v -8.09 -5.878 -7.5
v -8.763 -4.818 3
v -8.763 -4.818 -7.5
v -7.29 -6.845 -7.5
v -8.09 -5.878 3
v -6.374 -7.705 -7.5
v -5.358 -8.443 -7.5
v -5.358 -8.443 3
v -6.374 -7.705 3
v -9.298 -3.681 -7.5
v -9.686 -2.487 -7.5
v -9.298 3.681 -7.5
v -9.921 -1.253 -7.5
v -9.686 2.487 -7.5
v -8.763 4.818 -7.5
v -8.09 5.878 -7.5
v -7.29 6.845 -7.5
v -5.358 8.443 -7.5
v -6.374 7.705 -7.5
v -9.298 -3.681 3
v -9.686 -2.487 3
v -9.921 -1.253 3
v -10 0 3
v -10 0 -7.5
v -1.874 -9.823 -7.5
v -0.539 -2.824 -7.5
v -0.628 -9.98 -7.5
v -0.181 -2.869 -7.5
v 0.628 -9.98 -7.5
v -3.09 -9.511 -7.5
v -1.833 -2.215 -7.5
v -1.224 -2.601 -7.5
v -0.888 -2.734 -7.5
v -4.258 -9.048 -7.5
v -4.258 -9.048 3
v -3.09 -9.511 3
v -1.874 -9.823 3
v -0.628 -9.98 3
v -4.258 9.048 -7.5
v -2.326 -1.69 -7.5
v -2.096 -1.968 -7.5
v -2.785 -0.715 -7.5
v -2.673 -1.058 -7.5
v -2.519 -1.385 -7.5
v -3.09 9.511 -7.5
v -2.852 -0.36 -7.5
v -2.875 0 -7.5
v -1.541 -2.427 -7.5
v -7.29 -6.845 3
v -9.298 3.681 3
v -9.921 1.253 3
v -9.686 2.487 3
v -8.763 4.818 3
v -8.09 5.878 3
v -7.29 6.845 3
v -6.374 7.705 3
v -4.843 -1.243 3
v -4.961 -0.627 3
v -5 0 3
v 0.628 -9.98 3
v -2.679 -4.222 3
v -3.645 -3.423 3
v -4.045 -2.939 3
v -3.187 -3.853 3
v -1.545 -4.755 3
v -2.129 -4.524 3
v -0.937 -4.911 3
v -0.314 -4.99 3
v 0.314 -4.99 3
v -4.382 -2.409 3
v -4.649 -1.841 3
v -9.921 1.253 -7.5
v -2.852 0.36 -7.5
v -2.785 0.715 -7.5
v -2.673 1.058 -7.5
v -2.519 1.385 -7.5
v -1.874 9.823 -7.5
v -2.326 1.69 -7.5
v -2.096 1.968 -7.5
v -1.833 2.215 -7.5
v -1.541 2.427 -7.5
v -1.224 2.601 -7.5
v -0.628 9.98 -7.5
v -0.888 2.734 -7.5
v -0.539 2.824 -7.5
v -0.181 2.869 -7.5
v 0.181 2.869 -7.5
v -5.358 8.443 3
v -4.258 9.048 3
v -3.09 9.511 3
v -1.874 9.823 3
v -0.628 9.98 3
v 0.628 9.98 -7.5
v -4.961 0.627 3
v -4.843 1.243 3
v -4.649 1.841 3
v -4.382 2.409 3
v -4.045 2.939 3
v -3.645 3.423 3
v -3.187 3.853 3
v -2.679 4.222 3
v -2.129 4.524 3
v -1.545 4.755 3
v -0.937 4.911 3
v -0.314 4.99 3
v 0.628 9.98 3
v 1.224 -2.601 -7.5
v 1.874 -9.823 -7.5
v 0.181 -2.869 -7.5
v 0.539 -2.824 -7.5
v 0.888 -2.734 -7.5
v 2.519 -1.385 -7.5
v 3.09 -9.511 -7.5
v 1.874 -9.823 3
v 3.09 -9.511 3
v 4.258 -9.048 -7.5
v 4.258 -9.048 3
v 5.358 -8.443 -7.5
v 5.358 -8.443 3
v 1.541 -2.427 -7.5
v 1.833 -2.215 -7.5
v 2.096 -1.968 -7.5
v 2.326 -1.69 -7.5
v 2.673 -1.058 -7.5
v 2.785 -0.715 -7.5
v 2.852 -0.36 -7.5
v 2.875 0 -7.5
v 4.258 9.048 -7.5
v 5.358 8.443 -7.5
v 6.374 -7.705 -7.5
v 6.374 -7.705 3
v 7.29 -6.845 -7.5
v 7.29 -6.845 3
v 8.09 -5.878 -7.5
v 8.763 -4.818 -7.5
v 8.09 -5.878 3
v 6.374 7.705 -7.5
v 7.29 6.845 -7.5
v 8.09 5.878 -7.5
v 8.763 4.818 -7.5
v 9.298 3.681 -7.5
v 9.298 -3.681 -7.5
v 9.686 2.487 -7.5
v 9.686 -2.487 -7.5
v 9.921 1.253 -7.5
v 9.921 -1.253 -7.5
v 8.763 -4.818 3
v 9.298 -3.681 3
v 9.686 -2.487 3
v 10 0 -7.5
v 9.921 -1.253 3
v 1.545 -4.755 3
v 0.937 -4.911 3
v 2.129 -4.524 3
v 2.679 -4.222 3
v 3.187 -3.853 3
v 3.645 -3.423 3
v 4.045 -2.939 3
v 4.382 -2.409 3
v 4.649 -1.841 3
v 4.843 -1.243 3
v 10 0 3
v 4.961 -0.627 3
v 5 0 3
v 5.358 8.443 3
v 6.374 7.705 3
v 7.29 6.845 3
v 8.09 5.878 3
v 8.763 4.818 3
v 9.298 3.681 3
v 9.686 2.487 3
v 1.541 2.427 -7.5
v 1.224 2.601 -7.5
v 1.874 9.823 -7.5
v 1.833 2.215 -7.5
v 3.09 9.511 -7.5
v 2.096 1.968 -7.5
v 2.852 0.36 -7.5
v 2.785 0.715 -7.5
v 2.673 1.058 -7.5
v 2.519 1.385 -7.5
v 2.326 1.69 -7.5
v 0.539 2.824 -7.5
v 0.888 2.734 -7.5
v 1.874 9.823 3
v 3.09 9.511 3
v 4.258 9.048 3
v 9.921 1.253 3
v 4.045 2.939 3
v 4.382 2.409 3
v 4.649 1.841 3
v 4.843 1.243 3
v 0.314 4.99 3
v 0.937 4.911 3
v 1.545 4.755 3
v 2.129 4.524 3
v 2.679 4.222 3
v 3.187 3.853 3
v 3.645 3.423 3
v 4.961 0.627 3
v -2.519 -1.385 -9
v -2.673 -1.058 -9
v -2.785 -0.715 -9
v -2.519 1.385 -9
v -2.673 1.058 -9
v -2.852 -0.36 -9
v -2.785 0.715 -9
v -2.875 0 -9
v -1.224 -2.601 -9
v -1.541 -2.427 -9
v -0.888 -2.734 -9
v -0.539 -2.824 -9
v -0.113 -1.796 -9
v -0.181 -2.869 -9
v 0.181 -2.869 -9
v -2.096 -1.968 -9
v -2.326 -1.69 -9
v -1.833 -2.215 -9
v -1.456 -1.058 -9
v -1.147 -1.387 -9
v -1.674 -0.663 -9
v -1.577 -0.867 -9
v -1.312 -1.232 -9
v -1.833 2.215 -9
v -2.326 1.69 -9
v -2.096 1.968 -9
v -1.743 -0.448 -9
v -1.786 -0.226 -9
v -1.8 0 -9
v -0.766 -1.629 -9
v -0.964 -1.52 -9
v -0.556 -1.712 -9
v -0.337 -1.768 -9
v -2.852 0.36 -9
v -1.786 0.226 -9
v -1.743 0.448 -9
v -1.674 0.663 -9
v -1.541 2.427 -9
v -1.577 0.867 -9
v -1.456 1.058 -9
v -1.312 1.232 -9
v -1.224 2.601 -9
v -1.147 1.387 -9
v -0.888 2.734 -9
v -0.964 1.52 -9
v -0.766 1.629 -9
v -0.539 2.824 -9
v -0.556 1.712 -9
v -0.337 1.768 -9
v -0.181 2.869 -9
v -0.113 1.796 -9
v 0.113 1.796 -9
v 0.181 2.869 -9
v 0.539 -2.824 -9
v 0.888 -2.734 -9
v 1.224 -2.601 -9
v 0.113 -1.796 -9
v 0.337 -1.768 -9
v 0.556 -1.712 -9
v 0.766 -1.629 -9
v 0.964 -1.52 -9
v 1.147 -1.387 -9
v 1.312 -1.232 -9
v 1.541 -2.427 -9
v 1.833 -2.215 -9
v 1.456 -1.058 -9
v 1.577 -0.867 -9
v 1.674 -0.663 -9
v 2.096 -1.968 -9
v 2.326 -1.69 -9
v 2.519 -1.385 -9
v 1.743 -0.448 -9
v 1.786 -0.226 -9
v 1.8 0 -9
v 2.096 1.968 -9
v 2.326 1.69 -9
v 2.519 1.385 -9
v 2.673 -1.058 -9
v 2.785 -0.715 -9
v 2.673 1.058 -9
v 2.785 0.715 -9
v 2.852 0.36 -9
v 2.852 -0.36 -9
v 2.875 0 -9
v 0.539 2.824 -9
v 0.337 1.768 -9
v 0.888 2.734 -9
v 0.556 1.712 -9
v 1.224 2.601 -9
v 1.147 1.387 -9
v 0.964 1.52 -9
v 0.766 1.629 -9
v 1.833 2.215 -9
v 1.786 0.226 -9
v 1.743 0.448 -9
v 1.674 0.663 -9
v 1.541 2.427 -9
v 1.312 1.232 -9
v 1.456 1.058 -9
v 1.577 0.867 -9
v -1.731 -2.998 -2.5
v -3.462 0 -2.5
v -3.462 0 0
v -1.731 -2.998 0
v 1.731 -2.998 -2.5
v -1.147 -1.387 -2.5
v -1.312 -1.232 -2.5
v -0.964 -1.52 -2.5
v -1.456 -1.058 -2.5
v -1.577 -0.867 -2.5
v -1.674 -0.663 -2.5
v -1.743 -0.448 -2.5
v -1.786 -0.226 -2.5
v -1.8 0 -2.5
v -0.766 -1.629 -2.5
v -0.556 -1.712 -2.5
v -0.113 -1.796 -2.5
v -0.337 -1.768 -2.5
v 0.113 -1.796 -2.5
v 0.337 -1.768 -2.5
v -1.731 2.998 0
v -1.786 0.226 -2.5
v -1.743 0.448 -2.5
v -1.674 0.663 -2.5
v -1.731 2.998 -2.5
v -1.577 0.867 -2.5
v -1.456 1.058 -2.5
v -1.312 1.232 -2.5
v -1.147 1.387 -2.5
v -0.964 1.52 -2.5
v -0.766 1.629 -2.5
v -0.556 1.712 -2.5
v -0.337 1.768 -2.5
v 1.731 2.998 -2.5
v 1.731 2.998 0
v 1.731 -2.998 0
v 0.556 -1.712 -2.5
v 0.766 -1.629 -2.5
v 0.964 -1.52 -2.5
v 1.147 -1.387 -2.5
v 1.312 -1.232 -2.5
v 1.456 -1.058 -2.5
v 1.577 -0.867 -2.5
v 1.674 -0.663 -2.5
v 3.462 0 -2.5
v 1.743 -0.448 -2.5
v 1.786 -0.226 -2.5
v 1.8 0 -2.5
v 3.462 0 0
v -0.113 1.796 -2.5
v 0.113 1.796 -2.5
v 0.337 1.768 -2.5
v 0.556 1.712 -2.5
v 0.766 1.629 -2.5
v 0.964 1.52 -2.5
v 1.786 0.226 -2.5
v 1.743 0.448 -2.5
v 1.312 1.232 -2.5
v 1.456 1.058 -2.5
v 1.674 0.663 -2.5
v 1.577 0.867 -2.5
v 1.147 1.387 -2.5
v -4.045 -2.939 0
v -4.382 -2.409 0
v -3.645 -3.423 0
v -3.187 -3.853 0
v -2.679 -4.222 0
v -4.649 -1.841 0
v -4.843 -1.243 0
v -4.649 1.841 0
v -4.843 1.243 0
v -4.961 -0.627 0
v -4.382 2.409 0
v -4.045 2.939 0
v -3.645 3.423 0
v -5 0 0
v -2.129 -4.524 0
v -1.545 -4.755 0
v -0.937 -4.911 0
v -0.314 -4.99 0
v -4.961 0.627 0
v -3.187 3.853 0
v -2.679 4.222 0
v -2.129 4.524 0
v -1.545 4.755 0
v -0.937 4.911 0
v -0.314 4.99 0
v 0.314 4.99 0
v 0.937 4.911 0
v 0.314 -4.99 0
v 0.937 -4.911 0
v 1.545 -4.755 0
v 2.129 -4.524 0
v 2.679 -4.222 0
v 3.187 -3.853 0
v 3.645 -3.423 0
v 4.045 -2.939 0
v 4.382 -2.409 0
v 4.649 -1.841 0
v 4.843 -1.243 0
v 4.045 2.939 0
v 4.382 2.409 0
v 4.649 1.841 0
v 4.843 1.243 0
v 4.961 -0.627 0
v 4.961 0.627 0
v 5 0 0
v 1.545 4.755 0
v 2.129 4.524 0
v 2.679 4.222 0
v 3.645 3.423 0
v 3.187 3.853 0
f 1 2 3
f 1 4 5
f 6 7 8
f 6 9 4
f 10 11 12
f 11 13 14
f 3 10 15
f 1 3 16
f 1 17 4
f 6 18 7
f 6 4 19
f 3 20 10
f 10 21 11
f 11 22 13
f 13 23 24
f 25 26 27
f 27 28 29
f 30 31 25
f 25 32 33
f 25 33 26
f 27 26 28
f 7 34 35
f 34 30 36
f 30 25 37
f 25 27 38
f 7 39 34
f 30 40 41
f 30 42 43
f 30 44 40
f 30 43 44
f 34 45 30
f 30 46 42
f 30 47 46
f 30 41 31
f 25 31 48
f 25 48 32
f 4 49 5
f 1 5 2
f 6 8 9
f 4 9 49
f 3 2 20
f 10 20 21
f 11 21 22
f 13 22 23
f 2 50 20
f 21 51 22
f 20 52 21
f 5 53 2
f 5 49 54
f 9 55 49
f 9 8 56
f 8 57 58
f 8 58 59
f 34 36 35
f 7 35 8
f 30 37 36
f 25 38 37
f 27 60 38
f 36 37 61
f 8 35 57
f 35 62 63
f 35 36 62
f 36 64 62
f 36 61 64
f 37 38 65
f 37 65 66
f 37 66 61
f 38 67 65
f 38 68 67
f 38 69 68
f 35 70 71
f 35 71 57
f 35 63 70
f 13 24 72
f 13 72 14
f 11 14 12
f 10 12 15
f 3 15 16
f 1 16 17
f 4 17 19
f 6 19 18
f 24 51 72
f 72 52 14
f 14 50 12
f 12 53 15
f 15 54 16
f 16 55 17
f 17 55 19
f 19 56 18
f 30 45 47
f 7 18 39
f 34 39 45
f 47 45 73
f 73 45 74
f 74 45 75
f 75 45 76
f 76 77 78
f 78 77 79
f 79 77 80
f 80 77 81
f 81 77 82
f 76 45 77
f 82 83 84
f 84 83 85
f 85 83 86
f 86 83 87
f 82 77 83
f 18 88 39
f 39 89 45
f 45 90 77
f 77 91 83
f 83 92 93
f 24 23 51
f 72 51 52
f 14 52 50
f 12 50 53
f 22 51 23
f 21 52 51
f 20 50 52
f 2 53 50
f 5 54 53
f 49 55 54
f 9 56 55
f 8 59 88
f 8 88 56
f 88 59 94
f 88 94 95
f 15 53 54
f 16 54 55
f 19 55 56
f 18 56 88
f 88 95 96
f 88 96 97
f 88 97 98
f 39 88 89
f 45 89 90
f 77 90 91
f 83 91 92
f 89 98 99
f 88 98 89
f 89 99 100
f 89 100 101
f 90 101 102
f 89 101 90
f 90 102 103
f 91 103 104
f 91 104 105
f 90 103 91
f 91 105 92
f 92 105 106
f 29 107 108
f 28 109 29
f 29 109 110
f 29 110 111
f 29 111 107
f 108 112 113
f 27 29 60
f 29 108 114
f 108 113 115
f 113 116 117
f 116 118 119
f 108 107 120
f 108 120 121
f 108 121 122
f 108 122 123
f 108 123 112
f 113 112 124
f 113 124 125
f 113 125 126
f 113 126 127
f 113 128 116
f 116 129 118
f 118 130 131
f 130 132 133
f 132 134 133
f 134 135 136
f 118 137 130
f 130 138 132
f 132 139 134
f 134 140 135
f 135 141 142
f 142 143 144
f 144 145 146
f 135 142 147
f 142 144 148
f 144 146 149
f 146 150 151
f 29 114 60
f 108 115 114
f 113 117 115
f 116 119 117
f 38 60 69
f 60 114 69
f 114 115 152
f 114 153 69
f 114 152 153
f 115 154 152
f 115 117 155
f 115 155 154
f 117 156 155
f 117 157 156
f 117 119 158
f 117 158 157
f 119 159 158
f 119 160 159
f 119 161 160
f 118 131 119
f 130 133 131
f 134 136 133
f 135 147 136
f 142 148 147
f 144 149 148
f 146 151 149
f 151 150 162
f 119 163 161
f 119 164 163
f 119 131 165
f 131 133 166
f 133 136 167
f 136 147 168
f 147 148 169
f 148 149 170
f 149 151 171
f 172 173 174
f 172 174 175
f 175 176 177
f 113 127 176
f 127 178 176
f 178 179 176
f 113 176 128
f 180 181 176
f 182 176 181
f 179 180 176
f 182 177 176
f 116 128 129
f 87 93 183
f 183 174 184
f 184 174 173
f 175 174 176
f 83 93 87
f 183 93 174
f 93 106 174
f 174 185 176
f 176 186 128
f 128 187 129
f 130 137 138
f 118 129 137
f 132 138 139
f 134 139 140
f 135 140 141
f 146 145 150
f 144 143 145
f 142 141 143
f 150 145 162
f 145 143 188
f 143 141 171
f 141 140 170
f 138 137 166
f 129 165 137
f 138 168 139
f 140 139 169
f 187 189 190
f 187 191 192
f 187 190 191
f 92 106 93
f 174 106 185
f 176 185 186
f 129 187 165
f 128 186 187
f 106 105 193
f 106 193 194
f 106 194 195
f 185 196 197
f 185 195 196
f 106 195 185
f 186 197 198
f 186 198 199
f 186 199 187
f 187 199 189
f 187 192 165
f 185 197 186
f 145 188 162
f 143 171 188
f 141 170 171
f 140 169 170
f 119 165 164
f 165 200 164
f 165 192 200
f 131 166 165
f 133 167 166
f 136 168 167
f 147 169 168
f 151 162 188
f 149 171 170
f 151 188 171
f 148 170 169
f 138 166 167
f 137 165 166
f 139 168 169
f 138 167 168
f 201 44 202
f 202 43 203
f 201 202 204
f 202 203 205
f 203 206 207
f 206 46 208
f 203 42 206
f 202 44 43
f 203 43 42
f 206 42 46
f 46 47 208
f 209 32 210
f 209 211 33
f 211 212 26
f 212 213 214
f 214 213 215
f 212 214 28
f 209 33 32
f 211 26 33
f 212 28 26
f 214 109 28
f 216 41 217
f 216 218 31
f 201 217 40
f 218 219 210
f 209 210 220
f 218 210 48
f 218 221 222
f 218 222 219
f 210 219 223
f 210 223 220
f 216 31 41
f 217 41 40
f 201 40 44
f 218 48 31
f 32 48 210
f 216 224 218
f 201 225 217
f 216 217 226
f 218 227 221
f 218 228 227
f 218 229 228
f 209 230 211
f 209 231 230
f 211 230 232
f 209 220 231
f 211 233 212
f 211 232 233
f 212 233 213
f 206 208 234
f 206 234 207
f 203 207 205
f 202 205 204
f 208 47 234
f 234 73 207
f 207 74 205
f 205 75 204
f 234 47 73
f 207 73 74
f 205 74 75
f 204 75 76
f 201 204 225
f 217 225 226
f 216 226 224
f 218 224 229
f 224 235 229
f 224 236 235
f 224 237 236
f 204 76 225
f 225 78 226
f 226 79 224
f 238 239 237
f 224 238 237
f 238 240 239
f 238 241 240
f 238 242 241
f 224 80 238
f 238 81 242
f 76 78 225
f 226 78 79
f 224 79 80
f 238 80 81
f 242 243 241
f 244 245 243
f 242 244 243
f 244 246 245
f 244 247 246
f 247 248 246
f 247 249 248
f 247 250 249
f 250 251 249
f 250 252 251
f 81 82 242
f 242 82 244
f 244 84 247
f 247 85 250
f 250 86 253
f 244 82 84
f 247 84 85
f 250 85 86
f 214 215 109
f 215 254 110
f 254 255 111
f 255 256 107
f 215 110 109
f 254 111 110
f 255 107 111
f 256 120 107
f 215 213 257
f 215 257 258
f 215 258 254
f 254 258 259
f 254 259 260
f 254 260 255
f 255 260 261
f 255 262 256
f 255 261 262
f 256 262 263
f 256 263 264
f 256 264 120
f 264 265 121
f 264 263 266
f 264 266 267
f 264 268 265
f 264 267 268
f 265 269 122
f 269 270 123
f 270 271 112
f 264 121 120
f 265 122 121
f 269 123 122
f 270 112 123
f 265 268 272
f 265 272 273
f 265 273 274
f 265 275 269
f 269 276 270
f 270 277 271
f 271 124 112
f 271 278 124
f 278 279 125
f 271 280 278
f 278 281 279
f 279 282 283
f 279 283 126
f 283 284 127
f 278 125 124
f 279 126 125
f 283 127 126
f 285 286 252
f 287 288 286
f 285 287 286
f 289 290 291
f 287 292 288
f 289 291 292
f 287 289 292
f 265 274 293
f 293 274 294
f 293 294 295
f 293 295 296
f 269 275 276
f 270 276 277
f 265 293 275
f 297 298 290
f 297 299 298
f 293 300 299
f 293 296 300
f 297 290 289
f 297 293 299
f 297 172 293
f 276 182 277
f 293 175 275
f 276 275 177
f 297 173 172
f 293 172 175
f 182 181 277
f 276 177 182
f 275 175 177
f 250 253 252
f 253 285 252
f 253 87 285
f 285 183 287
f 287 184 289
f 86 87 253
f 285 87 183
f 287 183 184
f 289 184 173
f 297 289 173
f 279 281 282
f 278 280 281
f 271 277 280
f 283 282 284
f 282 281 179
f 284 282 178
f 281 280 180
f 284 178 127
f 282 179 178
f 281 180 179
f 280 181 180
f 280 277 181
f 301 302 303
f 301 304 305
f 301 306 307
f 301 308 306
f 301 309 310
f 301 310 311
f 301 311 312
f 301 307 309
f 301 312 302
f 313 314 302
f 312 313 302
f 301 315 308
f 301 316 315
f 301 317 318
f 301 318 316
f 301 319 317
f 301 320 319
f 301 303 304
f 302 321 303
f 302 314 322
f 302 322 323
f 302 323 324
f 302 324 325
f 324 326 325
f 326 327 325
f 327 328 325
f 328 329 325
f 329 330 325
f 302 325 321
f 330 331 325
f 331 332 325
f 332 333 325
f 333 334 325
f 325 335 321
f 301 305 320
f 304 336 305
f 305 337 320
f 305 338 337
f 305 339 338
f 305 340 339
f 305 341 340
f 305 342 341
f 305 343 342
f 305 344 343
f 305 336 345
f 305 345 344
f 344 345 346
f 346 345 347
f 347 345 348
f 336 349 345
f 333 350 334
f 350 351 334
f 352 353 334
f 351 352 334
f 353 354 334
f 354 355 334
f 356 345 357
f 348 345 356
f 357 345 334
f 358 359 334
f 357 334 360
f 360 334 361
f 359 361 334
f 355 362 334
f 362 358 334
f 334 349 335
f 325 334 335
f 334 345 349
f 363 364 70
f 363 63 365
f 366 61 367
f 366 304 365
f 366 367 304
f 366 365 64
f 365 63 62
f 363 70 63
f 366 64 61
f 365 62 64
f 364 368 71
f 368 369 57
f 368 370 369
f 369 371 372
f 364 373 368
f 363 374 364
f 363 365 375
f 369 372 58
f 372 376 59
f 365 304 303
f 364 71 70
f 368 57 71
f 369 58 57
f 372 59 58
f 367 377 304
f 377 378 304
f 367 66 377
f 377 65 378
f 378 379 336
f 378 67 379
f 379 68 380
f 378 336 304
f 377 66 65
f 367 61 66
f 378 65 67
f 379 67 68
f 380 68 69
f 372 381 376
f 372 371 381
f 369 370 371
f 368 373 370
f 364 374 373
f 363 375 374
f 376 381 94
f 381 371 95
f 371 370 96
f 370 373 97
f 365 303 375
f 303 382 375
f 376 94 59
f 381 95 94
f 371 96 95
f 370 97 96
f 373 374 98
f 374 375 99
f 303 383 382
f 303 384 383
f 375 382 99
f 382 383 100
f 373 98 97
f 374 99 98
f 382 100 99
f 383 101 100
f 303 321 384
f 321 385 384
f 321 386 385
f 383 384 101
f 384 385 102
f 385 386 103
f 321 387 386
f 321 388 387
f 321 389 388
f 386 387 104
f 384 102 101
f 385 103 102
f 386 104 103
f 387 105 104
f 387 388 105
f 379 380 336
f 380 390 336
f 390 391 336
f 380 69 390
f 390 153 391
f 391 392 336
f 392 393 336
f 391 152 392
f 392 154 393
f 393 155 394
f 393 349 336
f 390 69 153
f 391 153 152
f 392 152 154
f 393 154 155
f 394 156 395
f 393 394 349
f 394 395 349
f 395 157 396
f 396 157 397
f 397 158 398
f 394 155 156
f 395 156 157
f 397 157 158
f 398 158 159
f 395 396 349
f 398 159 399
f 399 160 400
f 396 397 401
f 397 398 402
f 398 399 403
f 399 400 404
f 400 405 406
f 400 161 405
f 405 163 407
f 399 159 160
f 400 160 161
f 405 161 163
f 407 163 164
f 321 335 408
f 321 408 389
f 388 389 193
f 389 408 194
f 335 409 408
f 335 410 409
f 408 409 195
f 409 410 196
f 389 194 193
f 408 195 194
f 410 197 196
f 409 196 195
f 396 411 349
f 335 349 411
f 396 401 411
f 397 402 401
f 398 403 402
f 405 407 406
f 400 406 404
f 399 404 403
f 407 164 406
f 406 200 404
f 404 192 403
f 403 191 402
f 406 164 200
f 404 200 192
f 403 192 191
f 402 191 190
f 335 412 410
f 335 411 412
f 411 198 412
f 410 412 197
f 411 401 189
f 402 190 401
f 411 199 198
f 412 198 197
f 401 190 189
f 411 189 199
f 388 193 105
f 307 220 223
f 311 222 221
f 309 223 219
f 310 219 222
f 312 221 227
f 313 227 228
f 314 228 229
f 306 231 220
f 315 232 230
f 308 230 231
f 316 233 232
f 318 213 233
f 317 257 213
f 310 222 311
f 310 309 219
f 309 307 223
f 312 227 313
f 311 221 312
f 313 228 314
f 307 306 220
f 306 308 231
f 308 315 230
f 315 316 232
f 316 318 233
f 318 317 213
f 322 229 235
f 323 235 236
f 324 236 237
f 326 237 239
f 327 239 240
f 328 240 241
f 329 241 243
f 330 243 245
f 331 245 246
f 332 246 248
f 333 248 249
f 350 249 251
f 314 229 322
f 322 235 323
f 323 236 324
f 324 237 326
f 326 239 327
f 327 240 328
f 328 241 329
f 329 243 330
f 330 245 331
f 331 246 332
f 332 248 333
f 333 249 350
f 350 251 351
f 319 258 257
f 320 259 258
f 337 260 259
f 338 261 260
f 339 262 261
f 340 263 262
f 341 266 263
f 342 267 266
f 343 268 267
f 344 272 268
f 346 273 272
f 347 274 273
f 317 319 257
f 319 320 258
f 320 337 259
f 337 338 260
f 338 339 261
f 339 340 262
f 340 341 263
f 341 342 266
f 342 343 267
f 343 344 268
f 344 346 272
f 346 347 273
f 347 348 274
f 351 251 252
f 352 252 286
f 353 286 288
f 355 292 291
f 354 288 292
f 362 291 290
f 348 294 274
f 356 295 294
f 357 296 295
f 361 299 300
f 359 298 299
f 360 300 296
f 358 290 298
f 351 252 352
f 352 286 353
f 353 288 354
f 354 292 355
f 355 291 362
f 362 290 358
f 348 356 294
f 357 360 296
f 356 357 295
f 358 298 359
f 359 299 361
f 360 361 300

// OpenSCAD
$fn = 50;


difference() {
	union() {
		translate(v = [0, 0, -7.5000000000]) {
			cylinder(h = 10.5000000000, r = 10.0000000000);
		}
		#translate(v = [0, 0, -9.0000000000]) {
			cylinder(h = 9, r = 2.8750000000);
		}
	}
	union() {
		translate(v = [0, 0, 0]) {
			rotate(a = [0, 0, 0]) {
				difference() {
					union() {
						translate(v = [0, 0, -2.5000000000]) {
							linear_extrude(height = 2.5000000000) {
								polygon(points = [[3.4620000000, 0.0000000000], [1.7310000000, 2.9981799479], [-1.7310000000, 2.9981799479], [-3.4620000000, 0.0000000000], [-1.7310000000, -2.9981799479], [1.7310000000, -2.9981799479]]);
							}
						}
					}
					union();
				}
			}
		}
		#cylinder(h = 3, r = 5.0000000000);
		#translate(v = [0, 0, -100.0000000000]) {
			cylinder(h = 200, r = 1.8000000000);
		}
	}
}
